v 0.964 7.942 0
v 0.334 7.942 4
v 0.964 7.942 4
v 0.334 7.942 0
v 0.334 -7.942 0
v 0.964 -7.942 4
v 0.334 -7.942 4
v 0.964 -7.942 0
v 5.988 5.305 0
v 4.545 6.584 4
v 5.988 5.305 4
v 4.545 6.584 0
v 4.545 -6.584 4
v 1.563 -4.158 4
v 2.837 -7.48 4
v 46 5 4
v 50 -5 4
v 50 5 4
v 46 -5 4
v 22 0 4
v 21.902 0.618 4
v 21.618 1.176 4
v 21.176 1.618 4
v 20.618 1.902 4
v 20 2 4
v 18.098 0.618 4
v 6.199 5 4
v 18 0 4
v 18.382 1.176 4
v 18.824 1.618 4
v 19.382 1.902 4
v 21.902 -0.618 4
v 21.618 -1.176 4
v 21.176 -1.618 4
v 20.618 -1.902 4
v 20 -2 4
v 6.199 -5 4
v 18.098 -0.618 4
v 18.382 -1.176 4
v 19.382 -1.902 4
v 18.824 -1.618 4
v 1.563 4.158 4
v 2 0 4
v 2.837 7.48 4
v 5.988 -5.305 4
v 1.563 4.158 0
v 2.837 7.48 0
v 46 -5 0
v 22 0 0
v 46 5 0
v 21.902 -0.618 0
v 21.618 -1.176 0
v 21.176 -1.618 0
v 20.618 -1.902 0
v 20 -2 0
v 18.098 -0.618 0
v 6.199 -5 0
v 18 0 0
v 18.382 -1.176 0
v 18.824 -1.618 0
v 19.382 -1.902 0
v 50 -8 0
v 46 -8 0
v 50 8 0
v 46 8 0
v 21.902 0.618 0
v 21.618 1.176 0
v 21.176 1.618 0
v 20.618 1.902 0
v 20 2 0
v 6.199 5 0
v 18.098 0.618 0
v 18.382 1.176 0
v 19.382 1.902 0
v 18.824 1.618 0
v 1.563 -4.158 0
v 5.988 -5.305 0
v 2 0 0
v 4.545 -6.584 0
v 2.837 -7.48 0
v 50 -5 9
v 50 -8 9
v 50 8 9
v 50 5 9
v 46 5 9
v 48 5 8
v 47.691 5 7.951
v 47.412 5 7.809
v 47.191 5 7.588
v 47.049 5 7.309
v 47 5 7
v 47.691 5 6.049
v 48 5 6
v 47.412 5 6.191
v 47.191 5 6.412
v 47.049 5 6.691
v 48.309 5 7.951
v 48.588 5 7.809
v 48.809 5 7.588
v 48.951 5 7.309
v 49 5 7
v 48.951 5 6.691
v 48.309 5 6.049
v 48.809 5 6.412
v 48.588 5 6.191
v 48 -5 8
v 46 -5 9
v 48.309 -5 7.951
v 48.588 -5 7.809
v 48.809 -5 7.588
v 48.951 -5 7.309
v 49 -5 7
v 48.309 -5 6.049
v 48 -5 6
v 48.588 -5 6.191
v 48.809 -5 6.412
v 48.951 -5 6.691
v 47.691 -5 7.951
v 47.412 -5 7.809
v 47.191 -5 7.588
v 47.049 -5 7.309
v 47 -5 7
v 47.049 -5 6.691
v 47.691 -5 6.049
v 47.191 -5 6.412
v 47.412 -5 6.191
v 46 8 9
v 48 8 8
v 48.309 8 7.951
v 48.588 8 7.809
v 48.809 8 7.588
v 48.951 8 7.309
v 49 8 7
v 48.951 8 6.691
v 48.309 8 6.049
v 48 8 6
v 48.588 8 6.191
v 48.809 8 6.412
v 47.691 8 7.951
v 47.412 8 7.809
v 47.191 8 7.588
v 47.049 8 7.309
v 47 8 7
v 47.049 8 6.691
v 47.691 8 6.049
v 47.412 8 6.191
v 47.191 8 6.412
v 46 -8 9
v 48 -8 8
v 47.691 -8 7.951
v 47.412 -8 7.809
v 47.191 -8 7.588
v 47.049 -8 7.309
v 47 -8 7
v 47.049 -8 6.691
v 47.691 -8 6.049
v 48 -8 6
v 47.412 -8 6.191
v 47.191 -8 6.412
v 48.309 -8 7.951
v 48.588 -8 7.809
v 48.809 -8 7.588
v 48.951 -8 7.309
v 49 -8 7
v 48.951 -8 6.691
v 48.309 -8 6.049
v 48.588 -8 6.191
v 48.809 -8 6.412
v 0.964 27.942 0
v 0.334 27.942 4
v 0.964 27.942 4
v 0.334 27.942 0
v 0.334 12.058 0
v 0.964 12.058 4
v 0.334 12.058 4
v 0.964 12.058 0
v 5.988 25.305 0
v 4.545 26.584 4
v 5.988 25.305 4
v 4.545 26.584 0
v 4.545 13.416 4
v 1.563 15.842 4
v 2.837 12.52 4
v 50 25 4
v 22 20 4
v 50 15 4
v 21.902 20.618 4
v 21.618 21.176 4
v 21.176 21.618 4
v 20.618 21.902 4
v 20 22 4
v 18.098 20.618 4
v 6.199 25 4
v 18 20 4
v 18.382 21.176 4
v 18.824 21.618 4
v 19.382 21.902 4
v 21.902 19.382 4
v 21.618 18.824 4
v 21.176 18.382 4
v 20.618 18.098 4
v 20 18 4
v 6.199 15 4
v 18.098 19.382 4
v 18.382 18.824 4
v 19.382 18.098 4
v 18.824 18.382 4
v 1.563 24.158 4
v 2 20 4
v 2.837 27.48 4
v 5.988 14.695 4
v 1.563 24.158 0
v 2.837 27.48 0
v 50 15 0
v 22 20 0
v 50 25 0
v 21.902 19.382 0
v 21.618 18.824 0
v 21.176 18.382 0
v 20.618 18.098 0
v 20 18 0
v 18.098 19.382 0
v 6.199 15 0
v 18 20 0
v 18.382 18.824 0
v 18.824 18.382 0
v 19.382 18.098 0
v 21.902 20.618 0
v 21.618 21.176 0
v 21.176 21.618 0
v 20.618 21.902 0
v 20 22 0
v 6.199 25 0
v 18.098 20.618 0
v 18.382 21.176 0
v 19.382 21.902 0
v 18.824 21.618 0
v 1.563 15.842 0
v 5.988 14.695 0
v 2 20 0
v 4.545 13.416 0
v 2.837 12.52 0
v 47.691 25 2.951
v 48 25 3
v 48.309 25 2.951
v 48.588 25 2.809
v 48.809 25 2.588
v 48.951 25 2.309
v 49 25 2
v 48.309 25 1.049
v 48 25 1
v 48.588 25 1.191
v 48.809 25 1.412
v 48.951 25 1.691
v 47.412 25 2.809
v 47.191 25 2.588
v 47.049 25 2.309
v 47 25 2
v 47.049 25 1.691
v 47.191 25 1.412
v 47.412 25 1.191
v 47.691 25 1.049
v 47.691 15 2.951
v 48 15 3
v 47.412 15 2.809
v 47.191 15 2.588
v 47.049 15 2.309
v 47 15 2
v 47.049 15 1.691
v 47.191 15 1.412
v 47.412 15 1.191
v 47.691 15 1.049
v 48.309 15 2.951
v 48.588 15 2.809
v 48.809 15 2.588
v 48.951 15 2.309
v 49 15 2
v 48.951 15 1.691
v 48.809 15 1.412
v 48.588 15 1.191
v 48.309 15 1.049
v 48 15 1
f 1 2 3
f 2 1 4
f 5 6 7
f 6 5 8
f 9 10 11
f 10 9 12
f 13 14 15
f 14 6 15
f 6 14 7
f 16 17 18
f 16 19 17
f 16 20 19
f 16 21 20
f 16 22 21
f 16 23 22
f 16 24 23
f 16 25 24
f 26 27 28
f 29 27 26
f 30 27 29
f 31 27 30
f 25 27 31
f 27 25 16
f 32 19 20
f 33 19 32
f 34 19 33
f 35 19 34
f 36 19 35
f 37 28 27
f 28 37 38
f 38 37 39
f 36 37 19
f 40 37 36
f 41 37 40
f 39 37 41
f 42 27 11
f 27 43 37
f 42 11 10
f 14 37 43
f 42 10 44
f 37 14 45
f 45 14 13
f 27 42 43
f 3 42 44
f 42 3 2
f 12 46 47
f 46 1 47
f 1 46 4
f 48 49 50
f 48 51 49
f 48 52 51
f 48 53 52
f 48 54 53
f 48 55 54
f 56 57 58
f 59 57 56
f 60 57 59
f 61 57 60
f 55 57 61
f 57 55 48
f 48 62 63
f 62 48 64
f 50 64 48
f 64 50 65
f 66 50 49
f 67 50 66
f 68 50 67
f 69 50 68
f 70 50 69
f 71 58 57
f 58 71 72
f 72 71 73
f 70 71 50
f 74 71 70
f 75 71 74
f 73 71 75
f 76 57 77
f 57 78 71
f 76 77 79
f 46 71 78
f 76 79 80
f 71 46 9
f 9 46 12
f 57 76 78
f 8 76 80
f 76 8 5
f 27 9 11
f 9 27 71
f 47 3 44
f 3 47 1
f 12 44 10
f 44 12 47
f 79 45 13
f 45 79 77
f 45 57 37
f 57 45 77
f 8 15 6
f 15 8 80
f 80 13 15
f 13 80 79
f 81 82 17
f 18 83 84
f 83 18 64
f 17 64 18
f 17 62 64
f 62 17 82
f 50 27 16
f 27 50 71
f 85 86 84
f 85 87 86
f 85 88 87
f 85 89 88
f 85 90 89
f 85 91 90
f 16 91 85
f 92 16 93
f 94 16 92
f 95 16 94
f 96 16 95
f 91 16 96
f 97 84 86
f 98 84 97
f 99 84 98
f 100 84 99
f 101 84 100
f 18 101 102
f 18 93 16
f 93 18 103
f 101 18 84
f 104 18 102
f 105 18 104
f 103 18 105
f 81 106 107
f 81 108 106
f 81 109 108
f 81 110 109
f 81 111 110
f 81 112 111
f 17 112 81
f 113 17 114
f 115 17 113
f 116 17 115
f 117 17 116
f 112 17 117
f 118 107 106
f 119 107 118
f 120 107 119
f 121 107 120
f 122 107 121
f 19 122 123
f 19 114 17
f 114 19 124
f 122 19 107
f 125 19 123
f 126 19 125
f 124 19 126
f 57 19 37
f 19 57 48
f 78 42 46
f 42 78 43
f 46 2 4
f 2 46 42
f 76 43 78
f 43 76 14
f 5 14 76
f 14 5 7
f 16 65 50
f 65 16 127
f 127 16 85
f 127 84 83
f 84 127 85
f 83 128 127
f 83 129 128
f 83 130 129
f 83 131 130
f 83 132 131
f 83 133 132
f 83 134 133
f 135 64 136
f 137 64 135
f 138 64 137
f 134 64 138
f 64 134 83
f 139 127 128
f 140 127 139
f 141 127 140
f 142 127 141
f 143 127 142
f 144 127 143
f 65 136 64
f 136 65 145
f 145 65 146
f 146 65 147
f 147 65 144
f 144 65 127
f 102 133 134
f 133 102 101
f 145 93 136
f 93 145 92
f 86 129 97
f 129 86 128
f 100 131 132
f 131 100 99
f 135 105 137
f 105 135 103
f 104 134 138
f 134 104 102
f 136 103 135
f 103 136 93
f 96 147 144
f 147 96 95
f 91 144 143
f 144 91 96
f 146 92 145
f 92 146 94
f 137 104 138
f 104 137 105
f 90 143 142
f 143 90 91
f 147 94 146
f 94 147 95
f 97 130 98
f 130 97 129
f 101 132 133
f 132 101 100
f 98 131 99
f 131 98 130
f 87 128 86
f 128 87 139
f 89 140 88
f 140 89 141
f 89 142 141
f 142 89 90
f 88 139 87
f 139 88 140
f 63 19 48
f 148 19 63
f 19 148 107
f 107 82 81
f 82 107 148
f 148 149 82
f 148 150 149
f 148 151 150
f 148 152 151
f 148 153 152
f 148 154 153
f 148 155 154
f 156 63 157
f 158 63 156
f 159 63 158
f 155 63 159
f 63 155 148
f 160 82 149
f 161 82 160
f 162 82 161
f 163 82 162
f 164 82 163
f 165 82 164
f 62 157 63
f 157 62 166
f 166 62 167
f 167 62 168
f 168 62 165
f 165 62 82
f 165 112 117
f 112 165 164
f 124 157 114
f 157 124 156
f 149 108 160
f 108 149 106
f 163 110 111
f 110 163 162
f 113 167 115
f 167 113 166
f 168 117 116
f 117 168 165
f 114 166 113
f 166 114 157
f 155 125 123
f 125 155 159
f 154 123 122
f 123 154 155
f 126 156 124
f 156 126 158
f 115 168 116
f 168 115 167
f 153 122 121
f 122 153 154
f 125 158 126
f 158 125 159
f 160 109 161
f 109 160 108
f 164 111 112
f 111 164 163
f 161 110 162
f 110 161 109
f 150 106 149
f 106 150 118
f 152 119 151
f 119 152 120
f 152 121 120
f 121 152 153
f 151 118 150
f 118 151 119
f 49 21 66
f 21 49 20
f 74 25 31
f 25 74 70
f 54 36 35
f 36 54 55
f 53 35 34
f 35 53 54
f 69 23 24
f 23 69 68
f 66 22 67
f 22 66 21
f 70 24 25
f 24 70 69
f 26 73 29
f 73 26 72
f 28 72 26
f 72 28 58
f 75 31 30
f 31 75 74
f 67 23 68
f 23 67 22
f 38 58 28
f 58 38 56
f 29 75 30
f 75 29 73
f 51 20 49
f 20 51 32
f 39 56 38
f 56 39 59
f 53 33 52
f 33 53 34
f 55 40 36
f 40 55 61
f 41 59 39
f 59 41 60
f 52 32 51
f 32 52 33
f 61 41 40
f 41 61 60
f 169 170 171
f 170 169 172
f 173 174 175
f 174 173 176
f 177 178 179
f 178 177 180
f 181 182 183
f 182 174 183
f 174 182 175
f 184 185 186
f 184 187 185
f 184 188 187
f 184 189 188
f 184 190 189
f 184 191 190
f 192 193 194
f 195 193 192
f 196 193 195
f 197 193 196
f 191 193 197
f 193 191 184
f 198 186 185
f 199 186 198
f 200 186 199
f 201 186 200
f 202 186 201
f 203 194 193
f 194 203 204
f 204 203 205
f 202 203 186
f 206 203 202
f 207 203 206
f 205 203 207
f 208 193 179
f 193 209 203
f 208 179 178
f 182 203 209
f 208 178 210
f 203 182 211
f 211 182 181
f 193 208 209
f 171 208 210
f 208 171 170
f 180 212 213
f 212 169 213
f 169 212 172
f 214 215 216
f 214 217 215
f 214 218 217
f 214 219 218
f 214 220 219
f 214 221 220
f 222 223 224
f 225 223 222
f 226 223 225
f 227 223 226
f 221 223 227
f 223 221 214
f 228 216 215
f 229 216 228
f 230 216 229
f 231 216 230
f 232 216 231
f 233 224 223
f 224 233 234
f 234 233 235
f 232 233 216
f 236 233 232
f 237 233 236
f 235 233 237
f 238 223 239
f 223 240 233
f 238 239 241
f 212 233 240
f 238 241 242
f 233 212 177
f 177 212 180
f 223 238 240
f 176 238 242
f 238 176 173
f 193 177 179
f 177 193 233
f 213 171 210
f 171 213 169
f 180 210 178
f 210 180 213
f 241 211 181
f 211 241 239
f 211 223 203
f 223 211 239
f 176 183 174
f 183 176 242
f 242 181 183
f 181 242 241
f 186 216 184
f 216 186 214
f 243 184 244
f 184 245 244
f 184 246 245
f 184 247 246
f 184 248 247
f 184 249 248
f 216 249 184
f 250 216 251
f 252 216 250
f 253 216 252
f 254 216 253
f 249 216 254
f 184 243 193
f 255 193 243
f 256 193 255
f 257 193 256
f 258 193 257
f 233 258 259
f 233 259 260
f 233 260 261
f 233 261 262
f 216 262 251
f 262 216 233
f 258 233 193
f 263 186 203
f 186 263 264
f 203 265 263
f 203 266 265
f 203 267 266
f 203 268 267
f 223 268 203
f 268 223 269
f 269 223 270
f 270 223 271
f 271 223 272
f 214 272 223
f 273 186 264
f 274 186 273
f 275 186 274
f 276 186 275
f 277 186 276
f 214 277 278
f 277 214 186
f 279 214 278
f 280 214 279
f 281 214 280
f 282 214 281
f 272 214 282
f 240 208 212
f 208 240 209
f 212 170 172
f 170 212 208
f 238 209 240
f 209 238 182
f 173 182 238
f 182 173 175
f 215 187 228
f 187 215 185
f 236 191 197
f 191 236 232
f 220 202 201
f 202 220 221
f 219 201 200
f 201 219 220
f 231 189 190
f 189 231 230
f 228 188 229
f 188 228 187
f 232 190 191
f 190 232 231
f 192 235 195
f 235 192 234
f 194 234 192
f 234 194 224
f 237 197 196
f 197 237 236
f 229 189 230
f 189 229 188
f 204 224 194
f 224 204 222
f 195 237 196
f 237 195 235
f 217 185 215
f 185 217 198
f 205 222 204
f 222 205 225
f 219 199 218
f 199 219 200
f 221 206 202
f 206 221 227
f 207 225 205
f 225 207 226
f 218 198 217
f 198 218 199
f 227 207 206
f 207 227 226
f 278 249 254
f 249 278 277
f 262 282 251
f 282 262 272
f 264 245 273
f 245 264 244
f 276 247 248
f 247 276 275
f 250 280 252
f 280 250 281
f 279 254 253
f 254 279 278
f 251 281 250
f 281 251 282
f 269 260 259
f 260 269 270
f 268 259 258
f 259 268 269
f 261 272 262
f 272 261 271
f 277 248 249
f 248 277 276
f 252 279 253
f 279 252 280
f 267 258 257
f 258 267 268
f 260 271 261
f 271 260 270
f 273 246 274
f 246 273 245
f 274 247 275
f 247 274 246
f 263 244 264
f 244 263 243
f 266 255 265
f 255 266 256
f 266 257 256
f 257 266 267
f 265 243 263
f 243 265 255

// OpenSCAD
module body() {
    difference() {
        union() {
            difference() {
                union(){
                    cylinder(4, 8, 8);
                    translate([0, -5, 0]) {
                        cube([50, 10, 4]);
                    }
                }
                translate([-18, 0, 0]) {
                    cylinder(4, 20, 20);
                }
            }
        }
        
        translate([20, 0, 0]) {
            cylinder(4, 2, 2, $fn = 20);
        }
    }
}

module body_sides() {
    difference() {
        cube([4, 3, 9]);
        translate([2, 0, 7]){    
            rotate([-90, 0, 0]){
                cylinder (3, 1, 1, $fn = 20);
            }
        }
    }
}


translate([46, 0, 0]) {
    translate([0, 5, 0]){
        body_sides();
    }
    translate([0, -8, 0]){
        body_sides();
    }
}
    
body();

translate ([0, 20, 0]) {
    color([0, 1, 0]){
        difference() {
            body();
            translate([48, -5, 2]){    
                rotate([-90, 0, 0]){
                    cylinder (10, 1, 1, $fn = 20);
                }
            }
        }
    }
}
